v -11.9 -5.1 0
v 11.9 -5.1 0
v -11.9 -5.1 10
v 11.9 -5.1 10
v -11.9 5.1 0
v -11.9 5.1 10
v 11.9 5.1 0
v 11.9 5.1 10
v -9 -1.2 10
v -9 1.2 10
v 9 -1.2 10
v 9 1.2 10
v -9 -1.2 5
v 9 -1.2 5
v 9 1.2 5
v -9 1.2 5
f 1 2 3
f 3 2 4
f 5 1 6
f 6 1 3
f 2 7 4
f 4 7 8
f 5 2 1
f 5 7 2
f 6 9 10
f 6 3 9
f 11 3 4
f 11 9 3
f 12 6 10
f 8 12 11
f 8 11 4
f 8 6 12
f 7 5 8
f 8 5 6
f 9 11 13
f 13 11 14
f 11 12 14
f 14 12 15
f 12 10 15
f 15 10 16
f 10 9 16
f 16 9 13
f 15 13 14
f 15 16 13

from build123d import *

# Parameters (mm, degrees)
SKETCH001_W      = 18
SKETCH001_H      = 2.4
EXTRUDE001_DEPTH = 5
SKETCH_W         = 23.8
SKETCH_H         = 10.2
EXTRUDE_DEPTH    = 10


with BuildPart() as extrude001:
    # Sketch001 (on Face6 of Extrude) → Extrude001 (new body)
    with BuildSketch(Plane.XY.offset(10)):
        Rectangle(SKETCH001_W, SKETCH001_H)
    extrude(amount=-EXTRUDE001_DEPTH)


with BuildPart() as cut:
    # Sketch → Extrude (new body)
    with BuildSketch(Plane.XY):
        Rectangle(SKETCH_W, SKETCH_H)
    extrude(amount=EXTRUDE_DEPTH)

    # Cut: cut Extrude001
    add(extrude001.part, mode=Mode.SUBTRACT)


solid = cut.part
